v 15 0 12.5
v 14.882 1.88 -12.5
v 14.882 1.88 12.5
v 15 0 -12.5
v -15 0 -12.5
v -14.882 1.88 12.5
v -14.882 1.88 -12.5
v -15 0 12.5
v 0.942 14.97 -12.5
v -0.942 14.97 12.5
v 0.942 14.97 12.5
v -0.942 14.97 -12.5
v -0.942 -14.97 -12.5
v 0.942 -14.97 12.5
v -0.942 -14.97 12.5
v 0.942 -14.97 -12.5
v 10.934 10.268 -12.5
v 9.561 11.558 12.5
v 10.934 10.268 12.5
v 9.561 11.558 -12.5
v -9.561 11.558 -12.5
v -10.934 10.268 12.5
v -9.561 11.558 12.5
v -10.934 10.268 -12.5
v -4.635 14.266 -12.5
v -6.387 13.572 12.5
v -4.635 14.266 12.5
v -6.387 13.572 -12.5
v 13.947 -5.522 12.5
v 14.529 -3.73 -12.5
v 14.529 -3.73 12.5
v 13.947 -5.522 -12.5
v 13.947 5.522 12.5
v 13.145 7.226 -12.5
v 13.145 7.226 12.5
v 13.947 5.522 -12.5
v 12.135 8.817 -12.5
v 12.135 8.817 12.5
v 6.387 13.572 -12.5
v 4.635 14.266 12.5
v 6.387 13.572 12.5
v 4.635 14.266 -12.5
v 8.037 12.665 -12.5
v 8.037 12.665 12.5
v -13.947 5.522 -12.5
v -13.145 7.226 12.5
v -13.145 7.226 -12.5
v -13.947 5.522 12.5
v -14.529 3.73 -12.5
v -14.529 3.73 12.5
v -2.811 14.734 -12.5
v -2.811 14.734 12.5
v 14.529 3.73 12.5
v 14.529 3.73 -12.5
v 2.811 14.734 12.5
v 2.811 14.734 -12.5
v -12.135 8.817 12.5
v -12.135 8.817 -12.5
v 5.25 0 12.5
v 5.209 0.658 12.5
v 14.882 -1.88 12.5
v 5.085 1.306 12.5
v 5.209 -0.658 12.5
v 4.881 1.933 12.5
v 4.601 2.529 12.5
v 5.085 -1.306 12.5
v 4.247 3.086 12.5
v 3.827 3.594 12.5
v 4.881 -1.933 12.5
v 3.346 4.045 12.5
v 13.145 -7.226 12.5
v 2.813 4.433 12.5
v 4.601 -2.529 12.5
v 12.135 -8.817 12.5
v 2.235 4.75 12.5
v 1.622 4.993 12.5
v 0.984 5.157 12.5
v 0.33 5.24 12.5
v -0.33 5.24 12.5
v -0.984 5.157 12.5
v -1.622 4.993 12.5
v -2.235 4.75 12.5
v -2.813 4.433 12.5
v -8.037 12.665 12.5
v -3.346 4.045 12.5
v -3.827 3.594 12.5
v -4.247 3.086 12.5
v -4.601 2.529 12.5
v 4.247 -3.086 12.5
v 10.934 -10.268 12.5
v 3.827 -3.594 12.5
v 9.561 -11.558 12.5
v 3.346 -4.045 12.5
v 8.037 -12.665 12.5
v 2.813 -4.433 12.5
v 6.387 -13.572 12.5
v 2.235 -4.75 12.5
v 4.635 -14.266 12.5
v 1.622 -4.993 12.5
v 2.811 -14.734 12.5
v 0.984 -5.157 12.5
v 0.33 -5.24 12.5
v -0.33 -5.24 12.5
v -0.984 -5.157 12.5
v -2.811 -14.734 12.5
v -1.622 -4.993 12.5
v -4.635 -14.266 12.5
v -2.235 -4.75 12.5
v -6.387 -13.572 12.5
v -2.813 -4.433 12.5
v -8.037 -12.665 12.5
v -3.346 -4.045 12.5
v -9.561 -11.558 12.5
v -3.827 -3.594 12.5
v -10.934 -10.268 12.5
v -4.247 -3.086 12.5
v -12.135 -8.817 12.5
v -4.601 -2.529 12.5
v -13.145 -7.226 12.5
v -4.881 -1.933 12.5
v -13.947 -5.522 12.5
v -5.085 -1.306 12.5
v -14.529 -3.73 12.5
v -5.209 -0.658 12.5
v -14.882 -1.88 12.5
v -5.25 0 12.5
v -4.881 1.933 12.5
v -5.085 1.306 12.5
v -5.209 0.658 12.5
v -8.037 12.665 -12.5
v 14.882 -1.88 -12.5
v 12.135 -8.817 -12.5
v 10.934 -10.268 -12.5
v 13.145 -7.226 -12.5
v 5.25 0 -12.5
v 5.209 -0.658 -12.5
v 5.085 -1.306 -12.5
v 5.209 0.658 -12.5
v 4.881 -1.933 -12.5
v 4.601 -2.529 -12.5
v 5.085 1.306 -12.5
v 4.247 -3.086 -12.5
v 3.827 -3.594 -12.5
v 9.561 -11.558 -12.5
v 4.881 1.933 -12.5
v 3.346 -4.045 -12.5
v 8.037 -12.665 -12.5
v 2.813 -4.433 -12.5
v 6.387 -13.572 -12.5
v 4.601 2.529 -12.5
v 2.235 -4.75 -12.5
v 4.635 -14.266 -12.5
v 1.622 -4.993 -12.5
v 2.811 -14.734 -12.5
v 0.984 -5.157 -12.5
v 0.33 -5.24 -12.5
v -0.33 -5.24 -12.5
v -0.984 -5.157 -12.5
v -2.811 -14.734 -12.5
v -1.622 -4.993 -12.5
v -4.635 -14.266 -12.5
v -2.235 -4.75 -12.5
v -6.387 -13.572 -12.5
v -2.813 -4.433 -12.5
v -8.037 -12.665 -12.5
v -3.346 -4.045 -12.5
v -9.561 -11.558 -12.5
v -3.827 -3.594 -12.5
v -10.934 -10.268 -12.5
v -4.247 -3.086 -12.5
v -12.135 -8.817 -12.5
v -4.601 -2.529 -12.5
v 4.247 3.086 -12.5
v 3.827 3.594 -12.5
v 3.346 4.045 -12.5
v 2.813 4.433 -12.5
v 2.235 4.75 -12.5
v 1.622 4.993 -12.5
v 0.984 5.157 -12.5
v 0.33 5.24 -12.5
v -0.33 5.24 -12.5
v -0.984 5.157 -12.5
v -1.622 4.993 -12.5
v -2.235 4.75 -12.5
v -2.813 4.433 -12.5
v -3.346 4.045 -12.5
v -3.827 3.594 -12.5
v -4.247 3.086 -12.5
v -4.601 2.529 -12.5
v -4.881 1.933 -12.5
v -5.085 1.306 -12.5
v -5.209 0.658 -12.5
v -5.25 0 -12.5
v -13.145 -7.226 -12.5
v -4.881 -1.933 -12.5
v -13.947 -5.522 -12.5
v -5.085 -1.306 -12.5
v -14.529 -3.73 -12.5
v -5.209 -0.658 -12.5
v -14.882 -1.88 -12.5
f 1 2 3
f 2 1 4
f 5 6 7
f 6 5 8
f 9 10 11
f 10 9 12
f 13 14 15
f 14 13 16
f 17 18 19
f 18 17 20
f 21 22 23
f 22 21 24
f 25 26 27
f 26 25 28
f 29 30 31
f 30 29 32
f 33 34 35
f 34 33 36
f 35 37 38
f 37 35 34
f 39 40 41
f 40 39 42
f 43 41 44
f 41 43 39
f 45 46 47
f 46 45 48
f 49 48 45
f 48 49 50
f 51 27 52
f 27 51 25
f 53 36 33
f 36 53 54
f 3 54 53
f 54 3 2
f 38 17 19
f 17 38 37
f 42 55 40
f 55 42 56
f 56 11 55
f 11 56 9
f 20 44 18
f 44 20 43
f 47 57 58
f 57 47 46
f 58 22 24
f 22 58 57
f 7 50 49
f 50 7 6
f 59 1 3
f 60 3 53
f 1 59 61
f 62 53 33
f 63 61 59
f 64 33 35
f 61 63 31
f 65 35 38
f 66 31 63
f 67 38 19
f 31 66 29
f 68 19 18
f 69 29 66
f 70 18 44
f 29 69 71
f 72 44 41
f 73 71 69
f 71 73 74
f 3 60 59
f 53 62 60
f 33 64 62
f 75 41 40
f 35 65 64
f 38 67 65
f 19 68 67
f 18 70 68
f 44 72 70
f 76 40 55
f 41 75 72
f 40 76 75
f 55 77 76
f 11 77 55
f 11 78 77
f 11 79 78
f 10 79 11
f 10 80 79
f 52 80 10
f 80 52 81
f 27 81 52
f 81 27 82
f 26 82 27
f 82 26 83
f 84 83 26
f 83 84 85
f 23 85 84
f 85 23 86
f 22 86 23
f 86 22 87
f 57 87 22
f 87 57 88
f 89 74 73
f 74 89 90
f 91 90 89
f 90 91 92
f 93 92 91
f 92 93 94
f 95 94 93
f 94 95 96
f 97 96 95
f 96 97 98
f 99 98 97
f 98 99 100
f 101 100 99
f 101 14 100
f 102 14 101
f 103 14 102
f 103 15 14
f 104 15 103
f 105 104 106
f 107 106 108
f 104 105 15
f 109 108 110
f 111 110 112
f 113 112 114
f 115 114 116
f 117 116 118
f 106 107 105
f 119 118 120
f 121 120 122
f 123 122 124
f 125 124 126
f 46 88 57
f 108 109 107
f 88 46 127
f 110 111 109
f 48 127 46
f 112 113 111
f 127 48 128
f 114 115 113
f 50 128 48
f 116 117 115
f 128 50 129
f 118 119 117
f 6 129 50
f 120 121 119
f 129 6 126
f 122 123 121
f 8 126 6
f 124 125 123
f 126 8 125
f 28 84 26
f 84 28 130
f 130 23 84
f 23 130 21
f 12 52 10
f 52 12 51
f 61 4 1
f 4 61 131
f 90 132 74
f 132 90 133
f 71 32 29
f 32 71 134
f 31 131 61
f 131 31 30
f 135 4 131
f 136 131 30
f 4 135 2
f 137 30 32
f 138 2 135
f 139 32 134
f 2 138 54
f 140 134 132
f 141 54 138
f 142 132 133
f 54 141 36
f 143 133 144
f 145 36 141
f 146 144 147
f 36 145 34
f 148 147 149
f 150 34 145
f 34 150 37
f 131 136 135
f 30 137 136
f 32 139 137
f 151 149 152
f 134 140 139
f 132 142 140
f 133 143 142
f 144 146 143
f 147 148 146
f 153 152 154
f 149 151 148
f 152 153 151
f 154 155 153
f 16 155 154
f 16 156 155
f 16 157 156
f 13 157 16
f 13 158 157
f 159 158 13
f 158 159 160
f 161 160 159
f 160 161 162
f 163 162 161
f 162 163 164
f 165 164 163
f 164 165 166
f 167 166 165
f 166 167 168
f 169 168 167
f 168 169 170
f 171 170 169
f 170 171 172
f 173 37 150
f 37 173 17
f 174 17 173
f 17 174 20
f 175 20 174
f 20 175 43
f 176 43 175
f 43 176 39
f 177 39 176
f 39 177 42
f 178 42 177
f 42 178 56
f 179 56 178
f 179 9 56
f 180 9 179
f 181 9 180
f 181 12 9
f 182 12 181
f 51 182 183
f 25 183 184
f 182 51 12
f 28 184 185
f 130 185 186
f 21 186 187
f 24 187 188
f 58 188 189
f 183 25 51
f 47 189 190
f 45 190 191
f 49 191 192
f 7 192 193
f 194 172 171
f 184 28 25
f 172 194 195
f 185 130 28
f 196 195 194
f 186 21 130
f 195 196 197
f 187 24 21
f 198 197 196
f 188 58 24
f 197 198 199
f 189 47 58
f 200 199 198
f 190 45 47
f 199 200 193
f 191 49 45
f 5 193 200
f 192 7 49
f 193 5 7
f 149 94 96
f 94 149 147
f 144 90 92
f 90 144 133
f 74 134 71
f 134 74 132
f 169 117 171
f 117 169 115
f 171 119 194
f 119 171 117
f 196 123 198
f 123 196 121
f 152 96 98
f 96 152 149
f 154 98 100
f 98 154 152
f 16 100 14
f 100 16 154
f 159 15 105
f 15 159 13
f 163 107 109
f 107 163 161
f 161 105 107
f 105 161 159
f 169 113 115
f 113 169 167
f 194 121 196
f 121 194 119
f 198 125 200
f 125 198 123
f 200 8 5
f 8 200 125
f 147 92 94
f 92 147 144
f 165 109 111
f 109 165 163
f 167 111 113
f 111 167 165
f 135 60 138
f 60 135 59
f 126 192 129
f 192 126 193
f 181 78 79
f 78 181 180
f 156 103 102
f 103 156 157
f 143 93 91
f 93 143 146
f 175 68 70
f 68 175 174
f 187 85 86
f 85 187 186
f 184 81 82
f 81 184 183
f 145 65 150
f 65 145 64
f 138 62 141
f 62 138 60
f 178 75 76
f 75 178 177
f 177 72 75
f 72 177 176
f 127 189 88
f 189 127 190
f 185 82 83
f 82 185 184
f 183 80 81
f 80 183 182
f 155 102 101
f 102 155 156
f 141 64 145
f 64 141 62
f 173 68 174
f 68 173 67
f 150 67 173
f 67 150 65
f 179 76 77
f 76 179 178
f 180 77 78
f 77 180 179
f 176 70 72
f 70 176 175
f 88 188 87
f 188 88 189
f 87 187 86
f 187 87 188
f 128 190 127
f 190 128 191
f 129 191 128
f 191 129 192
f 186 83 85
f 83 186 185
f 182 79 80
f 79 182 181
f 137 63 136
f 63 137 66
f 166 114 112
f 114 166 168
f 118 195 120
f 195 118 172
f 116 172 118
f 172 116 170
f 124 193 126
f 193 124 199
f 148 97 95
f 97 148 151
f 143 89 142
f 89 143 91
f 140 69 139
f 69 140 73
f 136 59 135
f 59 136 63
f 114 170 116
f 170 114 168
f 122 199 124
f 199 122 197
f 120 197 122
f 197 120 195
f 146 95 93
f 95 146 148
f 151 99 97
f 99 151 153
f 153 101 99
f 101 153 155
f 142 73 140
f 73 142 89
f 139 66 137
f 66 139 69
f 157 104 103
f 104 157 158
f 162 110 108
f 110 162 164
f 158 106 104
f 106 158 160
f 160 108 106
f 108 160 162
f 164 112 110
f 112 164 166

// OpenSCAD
$fn = 50;


difference() {
	union() {
		translate(v = [0, 0, -12.5000000000]) {
			cylinder(h = 25, r = 15.0000000000);
		}
	}
	union() {
		translate(v = [0, 0, -100.0000000000]) {
			cylinder(h = 200, r = 5.2500000000);
		}
	}
}
